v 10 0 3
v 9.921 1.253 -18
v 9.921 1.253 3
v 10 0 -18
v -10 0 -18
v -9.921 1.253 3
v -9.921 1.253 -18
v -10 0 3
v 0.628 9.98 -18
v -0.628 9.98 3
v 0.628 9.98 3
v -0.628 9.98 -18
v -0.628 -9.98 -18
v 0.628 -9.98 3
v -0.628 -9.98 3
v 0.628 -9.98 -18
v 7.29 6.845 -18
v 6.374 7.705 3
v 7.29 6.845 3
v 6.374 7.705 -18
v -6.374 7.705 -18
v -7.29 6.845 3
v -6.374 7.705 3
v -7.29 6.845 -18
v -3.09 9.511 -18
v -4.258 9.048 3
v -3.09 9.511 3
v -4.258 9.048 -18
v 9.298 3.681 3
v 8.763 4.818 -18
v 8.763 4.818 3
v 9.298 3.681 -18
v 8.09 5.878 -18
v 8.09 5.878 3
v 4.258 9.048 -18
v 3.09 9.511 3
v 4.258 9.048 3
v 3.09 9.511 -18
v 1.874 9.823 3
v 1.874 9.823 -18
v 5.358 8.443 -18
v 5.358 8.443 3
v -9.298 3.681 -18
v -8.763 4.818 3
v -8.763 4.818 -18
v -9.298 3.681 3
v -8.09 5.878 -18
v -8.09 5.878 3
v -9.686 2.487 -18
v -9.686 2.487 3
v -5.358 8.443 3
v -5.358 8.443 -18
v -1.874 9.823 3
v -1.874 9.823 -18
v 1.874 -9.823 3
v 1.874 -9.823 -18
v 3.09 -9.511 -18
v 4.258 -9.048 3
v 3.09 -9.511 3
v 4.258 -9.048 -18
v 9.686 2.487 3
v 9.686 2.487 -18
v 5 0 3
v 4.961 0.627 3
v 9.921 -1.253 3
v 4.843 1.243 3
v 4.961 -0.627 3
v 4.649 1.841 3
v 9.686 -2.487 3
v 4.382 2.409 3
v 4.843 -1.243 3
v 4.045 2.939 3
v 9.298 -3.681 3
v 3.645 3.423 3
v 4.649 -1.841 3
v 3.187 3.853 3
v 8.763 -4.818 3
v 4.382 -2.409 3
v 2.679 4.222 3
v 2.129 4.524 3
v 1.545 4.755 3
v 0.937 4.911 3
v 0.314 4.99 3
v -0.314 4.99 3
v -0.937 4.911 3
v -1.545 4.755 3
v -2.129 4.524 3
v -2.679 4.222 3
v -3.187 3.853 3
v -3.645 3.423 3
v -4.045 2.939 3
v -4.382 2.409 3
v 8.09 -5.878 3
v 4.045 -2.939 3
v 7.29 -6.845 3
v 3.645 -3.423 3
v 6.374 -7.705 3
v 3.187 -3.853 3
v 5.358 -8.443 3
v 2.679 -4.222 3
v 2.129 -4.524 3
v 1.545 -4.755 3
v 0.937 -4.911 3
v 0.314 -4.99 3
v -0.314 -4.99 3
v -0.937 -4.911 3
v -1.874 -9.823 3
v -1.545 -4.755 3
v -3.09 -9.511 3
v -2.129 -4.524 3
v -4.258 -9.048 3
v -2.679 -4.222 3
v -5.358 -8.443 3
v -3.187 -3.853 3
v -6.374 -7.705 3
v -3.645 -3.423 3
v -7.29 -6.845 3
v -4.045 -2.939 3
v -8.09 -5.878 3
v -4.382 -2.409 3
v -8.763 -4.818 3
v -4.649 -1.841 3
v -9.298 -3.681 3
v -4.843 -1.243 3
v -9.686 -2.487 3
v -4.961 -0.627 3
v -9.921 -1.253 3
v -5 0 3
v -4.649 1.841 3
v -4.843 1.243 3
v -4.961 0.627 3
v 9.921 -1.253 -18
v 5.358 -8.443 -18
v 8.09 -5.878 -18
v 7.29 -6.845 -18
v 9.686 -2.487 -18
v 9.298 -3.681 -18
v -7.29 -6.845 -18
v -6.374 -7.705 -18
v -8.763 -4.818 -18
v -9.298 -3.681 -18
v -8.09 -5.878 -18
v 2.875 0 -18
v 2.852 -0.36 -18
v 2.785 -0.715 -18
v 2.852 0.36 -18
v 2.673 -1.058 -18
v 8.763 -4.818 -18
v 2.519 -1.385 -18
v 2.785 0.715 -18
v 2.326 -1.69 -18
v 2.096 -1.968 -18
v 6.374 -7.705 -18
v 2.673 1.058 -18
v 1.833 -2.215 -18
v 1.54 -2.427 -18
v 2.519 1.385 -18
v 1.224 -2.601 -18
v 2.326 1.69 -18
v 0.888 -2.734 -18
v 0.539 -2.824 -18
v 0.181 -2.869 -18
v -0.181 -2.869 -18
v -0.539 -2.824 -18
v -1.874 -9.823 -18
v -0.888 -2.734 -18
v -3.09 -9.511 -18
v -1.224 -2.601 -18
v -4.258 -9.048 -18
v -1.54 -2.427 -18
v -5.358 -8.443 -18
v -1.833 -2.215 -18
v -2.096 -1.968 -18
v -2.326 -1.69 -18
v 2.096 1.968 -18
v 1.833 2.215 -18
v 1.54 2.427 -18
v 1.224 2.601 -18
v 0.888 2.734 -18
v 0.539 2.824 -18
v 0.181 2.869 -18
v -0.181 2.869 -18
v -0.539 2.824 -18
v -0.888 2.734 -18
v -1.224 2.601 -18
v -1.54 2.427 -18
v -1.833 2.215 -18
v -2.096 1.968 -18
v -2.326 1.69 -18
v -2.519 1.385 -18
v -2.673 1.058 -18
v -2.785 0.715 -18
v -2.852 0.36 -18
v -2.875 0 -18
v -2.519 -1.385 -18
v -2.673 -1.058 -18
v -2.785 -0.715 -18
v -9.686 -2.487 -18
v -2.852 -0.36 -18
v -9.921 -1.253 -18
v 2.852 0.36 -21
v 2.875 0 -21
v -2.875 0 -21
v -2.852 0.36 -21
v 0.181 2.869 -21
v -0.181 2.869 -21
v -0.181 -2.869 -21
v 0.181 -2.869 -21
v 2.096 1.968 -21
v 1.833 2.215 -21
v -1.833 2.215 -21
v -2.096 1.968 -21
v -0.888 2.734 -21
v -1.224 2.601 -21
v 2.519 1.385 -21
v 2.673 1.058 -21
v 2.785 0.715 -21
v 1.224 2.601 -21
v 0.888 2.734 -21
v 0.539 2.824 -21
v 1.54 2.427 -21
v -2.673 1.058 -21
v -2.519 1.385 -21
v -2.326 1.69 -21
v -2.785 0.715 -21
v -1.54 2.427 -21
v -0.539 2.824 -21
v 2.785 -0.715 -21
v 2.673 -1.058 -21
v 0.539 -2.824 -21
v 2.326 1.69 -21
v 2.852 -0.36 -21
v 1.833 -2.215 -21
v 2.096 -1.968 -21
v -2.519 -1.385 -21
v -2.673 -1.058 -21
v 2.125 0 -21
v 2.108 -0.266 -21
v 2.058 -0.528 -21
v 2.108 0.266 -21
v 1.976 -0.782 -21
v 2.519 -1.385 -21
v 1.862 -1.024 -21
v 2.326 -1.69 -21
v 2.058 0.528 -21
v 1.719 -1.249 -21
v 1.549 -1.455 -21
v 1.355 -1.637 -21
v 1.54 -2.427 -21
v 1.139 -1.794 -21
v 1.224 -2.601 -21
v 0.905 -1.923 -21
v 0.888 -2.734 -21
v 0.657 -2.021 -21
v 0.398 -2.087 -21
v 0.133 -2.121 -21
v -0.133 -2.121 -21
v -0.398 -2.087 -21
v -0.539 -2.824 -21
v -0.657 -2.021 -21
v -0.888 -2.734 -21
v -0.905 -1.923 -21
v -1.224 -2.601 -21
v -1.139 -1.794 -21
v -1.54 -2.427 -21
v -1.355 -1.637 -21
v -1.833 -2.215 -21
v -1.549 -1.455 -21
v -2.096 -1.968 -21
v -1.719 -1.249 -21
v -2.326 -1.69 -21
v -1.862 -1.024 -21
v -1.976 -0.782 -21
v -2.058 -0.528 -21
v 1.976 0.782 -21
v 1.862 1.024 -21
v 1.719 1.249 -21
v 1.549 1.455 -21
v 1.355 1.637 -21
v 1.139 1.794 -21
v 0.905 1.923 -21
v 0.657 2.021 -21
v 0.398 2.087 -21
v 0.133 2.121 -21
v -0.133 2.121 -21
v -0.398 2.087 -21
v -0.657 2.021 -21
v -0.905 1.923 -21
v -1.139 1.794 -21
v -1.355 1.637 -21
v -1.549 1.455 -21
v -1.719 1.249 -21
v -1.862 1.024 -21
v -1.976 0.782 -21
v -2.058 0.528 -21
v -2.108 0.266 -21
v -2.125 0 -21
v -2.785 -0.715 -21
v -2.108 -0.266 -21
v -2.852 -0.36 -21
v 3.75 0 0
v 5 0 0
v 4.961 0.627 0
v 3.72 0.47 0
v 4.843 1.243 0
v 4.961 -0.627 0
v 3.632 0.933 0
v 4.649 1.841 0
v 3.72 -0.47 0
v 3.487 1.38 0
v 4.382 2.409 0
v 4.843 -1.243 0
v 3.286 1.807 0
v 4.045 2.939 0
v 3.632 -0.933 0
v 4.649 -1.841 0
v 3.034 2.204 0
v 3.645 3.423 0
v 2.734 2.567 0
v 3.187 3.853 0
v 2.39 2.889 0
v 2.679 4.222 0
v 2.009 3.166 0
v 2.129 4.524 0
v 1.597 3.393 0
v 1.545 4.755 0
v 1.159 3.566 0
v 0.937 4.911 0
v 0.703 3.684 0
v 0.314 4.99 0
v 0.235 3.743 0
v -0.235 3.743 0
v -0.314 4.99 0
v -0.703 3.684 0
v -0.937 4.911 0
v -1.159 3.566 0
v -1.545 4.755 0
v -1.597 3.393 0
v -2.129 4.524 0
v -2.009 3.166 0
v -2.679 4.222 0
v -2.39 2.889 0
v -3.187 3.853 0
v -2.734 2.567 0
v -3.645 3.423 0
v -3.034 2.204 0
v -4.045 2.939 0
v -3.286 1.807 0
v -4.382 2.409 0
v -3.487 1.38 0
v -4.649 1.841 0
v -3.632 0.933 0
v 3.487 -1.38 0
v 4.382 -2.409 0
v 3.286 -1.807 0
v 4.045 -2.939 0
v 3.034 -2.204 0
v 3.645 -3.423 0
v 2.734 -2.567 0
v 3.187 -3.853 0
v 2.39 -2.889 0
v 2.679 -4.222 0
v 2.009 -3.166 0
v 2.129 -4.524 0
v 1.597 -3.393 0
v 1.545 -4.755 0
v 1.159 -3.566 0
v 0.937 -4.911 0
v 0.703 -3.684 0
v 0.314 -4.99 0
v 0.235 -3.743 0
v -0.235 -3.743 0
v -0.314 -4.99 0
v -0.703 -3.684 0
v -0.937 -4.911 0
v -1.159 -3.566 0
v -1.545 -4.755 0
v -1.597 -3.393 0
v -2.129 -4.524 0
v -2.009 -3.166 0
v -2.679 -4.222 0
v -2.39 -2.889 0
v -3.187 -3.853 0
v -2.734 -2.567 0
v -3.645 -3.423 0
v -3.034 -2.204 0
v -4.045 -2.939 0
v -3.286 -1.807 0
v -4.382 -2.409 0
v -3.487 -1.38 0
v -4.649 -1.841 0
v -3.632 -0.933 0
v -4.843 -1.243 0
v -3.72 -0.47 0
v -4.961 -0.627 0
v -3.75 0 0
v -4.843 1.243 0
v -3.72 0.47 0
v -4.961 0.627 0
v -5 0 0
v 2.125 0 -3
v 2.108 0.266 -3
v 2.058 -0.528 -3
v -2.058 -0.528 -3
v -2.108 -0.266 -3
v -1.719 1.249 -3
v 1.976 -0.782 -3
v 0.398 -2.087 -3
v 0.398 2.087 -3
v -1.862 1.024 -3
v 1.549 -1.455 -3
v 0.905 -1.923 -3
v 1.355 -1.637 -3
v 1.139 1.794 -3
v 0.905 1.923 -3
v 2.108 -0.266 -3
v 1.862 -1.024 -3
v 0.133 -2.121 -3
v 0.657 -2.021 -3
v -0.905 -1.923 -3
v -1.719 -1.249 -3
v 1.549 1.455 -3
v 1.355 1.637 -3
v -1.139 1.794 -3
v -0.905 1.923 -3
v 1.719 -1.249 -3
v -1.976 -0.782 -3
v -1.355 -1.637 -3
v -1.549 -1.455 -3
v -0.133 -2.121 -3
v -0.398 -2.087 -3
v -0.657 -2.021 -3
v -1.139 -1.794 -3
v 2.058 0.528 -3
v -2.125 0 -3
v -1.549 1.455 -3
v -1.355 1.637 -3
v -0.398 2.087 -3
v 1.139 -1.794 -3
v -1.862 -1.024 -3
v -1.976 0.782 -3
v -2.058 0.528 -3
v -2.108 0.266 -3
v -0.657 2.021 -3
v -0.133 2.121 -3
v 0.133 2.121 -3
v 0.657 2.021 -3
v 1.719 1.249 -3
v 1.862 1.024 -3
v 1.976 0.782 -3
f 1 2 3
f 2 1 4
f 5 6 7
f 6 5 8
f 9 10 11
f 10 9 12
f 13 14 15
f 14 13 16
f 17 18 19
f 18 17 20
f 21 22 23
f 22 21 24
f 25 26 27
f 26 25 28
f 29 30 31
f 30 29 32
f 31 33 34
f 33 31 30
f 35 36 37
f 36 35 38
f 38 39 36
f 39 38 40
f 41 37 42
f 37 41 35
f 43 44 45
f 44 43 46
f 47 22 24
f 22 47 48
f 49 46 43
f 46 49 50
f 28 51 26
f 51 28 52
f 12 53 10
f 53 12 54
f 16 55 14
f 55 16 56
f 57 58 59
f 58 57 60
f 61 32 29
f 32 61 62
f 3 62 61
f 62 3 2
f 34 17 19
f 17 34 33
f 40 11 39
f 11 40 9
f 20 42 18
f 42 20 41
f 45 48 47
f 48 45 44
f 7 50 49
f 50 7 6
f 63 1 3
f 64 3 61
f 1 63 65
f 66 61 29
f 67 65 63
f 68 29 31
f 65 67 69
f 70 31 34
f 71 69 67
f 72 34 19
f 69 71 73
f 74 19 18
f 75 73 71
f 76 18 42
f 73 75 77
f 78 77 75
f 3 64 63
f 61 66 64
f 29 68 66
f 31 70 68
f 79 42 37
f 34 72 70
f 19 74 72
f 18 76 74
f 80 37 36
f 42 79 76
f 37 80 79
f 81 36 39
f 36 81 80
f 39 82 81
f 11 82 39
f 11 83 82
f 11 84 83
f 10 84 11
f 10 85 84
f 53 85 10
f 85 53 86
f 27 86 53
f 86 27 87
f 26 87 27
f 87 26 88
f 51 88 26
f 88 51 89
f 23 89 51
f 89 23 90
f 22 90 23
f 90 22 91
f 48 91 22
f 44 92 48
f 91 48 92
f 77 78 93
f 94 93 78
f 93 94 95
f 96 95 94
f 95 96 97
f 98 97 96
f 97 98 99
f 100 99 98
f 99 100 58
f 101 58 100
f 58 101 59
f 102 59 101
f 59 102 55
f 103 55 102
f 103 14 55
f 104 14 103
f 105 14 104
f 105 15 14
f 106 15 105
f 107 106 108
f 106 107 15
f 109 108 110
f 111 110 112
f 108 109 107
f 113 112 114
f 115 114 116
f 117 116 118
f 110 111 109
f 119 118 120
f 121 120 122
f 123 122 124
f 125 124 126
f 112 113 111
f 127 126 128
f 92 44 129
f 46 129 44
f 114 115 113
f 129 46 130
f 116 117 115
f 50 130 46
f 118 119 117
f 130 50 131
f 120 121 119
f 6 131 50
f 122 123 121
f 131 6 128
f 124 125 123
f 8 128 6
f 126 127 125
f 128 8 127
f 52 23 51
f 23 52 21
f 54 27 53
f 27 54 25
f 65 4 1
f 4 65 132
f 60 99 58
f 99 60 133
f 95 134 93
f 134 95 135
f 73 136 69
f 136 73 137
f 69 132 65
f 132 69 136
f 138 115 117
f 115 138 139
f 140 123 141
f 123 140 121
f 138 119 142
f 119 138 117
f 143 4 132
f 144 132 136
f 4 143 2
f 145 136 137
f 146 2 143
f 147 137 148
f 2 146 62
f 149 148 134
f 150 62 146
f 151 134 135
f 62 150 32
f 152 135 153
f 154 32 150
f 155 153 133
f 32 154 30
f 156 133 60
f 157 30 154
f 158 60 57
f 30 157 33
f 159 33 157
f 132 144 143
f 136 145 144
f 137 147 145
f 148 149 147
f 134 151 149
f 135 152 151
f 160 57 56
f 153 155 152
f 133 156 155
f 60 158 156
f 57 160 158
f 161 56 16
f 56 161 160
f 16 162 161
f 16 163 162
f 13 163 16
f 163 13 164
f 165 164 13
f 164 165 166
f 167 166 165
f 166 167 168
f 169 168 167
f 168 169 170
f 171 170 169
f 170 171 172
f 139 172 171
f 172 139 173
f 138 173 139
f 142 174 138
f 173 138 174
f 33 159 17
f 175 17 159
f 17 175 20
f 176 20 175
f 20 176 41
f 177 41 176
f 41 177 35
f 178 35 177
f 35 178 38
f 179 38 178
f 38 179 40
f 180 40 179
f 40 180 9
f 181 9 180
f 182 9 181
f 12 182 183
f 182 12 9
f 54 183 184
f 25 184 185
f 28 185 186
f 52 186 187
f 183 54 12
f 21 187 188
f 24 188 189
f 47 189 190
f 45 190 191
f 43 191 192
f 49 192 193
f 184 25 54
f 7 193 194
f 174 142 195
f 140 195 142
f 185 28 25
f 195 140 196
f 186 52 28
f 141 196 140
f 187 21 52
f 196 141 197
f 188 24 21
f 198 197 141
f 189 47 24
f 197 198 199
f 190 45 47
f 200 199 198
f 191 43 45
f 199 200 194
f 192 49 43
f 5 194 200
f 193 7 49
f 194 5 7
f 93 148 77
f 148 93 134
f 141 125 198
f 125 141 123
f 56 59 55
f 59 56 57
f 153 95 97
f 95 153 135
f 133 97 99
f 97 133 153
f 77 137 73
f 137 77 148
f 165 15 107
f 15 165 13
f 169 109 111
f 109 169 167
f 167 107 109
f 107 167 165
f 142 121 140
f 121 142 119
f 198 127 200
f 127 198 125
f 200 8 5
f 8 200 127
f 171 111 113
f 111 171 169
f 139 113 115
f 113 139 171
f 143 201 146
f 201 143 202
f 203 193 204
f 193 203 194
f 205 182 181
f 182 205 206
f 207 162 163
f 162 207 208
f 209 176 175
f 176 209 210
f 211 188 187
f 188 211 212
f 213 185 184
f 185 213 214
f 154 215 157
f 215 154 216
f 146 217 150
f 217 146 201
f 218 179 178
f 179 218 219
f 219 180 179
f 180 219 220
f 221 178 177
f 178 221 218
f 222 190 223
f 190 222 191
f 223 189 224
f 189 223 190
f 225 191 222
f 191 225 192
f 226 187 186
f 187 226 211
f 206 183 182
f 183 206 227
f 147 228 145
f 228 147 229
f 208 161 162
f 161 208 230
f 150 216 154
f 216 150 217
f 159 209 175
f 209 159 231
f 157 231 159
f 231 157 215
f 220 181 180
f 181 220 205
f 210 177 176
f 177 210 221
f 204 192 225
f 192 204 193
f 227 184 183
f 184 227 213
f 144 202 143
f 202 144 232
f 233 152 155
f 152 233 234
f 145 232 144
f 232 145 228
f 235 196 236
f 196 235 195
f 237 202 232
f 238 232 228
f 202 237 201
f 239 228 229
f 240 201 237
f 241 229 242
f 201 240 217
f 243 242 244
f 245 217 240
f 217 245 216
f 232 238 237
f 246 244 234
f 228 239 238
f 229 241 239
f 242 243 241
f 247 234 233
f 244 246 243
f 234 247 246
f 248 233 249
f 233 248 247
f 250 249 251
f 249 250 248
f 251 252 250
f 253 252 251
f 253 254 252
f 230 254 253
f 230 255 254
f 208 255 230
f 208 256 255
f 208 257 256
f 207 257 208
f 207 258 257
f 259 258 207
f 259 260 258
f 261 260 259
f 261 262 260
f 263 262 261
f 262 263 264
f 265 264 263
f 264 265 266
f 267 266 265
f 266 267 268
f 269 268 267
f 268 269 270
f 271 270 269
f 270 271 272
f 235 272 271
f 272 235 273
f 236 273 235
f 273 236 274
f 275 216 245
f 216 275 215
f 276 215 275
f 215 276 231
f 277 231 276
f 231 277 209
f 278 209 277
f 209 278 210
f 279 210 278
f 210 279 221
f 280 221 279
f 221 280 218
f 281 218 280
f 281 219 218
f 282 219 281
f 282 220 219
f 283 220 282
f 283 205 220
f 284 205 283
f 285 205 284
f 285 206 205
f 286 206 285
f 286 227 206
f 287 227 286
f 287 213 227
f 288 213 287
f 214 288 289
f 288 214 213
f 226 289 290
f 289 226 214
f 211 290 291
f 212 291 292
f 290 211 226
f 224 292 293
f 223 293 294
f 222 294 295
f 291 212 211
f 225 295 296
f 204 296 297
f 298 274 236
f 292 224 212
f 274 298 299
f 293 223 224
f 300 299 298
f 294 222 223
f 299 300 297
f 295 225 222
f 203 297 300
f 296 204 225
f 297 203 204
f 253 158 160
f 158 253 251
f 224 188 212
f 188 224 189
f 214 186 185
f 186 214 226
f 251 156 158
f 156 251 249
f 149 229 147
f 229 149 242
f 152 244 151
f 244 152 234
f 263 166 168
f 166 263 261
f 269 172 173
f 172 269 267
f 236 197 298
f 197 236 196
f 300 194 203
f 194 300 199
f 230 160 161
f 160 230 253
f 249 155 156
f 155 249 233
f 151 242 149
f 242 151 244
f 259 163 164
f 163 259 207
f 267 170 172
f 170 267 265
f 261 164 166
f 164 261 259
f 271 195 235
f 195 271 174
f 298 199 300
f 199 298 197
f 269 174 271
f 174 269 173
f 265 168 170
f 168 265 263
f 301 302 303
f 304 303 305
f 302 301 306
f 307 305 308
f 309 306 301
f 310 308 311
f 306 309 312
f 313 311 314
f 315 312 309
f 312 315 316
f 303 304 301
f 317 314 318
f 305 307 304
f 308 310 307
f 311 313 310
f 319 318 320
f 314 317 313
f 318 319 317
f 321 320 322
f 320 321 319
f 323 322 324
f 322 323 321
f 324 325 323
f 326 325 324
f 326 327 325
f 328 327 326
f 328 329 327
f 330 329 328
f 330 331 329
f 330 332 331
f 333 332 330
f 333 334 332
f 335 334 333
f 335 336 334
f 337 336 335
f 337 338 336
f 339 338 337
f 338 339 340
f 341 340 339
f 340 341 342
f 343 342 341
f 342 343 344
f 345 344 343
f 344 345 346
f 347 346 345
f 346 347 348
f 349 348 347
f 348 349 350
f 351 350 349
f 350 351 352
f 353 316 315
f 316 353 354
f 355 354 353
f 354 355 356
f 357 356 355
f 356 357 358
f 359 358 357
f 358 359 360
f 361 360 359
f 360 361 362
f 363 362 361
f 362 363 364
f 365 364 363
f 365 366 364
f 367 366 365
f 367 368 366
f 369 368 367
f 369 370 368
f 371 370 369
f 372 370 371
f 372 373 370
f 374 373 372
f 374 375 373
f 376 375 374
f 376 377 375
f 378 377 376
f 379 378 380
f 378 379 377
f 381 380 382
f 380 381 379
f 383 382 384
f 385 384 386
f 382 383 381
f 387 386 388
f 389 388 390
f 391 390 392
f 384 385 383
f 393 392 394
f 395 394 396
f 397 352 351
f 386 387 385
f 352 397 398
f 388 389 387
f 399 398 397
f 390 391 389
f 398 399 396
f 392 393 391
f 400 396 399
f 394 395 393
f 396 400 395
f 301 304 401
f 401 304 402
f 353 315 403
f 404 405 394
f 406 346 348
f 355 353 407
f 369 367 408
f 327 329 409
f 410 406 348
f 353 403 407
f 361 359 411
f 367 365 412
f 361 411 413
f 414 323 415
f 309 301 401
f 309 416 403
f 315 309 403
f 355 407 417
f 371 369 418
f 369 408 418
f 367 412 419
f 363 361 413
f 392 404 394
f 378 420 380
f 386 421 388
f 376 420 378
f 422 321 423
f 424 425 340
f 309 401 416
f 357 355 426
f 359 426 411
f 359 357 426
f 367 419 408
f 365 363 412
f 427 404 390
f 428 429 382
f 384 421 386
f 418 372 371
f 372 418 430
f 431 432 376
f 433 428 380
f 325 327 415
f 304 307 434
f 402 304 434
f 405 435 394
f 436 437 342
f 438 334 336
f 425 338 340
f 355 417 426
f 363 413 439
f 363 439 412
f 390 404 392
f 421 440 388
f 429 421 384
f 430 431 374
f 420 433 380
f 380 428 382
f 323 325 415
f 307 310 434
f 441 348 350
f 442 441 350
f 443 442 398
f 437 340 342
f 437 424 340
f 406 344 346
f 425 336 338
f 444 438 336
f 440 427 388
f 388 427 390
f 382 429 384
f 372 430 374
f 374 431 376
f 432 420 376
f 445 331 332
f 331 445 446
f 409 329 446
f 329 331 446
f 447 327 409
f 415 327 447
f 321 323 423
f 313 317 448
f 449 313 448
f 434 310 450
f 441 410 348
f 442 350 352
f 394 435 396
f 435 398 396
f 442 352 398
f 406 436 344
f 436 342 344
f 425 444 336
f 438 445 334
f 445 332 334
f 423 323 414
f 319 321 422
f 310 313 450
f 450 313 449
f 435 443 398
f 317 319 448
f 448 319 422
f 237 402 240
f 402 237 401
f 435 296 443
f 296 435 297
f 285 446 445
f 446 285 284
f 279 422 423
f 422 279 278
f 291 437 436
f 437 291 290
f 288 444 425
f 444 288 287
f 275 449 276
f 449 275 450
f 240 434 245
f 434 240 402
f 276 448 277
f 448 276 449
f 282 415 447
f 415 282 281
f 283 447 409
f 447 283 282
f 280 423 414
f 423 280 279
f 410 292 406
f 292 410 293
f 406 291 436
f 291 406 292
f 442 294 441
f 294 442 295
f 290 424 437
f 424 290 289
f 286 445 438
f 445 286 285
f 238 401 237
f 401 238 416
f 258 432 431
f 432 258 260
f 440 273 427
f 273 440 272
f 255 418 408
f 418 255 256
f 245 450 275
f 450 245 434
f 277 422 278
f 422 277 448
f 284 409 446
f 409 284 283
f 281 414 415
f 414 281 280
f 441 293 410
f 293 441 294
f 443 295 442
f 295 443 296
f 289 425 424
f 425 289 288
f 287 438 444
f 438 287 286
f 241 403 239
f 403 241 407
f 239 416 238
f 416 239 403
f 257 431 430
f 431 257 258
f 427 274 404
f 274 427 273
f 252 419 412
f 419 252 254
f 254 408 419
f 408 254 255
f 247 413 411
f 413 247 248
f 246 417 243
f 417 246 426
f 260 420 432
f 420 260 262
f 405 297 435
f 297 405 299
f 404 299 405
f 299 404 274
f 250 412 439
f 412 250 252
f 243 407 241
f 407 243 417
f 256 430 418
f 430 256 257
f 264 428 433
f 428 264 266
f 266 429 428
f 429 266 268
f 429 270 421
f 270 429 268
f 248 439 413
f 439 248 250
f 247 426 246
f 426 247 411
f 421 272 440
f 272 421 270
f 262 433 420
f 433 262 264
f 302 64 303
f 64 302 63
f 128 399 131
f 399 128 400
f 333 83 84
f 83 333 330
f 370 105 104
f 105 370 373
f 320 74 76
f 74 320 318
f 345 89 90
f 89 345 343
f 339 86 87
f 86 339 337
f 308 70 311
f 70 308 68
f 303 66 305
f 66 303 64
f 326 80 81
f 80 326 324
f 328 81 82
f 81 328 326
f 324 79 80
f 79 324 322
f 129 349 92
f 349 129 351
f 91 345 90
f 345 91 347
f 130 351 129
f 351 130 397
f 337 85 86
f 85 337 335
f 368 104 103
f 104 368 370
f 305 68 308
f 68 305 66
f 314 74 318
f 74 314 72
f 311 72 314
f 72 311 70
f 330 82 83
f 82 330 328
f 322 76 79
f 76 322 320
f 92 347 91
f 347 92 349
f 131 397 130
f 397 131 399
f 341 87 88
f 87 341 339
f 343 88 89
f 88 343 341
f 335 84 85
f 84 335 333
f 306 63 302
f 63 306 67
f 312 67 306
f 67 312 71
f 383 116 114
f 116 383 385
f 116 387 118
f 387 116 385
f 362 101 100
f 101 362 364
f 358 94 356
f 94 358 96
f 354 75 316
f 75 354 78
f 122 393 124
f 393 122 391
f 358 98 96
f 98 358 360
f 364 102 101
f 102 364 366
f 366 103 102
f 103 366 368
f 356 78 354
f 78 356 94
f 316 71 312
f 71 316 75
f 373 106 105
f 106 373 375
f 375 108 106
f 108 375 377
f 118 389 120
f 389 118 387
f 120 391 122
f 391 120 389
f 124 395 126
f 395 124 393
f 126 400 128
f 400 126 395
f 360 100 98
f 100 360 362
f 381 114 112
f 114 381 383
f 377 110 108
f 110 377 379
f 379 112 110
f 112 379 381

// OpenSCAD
$fn = 50;

difference() {
	union() {
		translate(v = [0, 0, -18.0]) {
			cylinder(h = 21, r = 10.0);
		}
		#translate(v = [0, 0, -21.0]) {
			cylinder(h = 21, r = 2.875);
		}
	}
	union() {
		translate(v = [0, 0, 0]) {
			rotate(a = [0, 0, 0]) {
				difference() {
					union() {
						translate(v = [0, 0, -21.0]) {
							cylinder(h = 21, r = 2.0);
						}
						translate(v = [0, 0, -3]) {
							cylinder(h = 3, r1 = 2.125, r2 = 3.75);
						}
						translate(v = [0, 0, -21.0]) {
							cylinder(h = 21, r = 2.125);
						}
						translate(v = [0, 0, -21.0]) {
							cylinder(h = 21, r = 2.0);
						}
					}
					union();
				}
			}
		}
		#cylinder(h = 3, r = 5.0);
	}
}
